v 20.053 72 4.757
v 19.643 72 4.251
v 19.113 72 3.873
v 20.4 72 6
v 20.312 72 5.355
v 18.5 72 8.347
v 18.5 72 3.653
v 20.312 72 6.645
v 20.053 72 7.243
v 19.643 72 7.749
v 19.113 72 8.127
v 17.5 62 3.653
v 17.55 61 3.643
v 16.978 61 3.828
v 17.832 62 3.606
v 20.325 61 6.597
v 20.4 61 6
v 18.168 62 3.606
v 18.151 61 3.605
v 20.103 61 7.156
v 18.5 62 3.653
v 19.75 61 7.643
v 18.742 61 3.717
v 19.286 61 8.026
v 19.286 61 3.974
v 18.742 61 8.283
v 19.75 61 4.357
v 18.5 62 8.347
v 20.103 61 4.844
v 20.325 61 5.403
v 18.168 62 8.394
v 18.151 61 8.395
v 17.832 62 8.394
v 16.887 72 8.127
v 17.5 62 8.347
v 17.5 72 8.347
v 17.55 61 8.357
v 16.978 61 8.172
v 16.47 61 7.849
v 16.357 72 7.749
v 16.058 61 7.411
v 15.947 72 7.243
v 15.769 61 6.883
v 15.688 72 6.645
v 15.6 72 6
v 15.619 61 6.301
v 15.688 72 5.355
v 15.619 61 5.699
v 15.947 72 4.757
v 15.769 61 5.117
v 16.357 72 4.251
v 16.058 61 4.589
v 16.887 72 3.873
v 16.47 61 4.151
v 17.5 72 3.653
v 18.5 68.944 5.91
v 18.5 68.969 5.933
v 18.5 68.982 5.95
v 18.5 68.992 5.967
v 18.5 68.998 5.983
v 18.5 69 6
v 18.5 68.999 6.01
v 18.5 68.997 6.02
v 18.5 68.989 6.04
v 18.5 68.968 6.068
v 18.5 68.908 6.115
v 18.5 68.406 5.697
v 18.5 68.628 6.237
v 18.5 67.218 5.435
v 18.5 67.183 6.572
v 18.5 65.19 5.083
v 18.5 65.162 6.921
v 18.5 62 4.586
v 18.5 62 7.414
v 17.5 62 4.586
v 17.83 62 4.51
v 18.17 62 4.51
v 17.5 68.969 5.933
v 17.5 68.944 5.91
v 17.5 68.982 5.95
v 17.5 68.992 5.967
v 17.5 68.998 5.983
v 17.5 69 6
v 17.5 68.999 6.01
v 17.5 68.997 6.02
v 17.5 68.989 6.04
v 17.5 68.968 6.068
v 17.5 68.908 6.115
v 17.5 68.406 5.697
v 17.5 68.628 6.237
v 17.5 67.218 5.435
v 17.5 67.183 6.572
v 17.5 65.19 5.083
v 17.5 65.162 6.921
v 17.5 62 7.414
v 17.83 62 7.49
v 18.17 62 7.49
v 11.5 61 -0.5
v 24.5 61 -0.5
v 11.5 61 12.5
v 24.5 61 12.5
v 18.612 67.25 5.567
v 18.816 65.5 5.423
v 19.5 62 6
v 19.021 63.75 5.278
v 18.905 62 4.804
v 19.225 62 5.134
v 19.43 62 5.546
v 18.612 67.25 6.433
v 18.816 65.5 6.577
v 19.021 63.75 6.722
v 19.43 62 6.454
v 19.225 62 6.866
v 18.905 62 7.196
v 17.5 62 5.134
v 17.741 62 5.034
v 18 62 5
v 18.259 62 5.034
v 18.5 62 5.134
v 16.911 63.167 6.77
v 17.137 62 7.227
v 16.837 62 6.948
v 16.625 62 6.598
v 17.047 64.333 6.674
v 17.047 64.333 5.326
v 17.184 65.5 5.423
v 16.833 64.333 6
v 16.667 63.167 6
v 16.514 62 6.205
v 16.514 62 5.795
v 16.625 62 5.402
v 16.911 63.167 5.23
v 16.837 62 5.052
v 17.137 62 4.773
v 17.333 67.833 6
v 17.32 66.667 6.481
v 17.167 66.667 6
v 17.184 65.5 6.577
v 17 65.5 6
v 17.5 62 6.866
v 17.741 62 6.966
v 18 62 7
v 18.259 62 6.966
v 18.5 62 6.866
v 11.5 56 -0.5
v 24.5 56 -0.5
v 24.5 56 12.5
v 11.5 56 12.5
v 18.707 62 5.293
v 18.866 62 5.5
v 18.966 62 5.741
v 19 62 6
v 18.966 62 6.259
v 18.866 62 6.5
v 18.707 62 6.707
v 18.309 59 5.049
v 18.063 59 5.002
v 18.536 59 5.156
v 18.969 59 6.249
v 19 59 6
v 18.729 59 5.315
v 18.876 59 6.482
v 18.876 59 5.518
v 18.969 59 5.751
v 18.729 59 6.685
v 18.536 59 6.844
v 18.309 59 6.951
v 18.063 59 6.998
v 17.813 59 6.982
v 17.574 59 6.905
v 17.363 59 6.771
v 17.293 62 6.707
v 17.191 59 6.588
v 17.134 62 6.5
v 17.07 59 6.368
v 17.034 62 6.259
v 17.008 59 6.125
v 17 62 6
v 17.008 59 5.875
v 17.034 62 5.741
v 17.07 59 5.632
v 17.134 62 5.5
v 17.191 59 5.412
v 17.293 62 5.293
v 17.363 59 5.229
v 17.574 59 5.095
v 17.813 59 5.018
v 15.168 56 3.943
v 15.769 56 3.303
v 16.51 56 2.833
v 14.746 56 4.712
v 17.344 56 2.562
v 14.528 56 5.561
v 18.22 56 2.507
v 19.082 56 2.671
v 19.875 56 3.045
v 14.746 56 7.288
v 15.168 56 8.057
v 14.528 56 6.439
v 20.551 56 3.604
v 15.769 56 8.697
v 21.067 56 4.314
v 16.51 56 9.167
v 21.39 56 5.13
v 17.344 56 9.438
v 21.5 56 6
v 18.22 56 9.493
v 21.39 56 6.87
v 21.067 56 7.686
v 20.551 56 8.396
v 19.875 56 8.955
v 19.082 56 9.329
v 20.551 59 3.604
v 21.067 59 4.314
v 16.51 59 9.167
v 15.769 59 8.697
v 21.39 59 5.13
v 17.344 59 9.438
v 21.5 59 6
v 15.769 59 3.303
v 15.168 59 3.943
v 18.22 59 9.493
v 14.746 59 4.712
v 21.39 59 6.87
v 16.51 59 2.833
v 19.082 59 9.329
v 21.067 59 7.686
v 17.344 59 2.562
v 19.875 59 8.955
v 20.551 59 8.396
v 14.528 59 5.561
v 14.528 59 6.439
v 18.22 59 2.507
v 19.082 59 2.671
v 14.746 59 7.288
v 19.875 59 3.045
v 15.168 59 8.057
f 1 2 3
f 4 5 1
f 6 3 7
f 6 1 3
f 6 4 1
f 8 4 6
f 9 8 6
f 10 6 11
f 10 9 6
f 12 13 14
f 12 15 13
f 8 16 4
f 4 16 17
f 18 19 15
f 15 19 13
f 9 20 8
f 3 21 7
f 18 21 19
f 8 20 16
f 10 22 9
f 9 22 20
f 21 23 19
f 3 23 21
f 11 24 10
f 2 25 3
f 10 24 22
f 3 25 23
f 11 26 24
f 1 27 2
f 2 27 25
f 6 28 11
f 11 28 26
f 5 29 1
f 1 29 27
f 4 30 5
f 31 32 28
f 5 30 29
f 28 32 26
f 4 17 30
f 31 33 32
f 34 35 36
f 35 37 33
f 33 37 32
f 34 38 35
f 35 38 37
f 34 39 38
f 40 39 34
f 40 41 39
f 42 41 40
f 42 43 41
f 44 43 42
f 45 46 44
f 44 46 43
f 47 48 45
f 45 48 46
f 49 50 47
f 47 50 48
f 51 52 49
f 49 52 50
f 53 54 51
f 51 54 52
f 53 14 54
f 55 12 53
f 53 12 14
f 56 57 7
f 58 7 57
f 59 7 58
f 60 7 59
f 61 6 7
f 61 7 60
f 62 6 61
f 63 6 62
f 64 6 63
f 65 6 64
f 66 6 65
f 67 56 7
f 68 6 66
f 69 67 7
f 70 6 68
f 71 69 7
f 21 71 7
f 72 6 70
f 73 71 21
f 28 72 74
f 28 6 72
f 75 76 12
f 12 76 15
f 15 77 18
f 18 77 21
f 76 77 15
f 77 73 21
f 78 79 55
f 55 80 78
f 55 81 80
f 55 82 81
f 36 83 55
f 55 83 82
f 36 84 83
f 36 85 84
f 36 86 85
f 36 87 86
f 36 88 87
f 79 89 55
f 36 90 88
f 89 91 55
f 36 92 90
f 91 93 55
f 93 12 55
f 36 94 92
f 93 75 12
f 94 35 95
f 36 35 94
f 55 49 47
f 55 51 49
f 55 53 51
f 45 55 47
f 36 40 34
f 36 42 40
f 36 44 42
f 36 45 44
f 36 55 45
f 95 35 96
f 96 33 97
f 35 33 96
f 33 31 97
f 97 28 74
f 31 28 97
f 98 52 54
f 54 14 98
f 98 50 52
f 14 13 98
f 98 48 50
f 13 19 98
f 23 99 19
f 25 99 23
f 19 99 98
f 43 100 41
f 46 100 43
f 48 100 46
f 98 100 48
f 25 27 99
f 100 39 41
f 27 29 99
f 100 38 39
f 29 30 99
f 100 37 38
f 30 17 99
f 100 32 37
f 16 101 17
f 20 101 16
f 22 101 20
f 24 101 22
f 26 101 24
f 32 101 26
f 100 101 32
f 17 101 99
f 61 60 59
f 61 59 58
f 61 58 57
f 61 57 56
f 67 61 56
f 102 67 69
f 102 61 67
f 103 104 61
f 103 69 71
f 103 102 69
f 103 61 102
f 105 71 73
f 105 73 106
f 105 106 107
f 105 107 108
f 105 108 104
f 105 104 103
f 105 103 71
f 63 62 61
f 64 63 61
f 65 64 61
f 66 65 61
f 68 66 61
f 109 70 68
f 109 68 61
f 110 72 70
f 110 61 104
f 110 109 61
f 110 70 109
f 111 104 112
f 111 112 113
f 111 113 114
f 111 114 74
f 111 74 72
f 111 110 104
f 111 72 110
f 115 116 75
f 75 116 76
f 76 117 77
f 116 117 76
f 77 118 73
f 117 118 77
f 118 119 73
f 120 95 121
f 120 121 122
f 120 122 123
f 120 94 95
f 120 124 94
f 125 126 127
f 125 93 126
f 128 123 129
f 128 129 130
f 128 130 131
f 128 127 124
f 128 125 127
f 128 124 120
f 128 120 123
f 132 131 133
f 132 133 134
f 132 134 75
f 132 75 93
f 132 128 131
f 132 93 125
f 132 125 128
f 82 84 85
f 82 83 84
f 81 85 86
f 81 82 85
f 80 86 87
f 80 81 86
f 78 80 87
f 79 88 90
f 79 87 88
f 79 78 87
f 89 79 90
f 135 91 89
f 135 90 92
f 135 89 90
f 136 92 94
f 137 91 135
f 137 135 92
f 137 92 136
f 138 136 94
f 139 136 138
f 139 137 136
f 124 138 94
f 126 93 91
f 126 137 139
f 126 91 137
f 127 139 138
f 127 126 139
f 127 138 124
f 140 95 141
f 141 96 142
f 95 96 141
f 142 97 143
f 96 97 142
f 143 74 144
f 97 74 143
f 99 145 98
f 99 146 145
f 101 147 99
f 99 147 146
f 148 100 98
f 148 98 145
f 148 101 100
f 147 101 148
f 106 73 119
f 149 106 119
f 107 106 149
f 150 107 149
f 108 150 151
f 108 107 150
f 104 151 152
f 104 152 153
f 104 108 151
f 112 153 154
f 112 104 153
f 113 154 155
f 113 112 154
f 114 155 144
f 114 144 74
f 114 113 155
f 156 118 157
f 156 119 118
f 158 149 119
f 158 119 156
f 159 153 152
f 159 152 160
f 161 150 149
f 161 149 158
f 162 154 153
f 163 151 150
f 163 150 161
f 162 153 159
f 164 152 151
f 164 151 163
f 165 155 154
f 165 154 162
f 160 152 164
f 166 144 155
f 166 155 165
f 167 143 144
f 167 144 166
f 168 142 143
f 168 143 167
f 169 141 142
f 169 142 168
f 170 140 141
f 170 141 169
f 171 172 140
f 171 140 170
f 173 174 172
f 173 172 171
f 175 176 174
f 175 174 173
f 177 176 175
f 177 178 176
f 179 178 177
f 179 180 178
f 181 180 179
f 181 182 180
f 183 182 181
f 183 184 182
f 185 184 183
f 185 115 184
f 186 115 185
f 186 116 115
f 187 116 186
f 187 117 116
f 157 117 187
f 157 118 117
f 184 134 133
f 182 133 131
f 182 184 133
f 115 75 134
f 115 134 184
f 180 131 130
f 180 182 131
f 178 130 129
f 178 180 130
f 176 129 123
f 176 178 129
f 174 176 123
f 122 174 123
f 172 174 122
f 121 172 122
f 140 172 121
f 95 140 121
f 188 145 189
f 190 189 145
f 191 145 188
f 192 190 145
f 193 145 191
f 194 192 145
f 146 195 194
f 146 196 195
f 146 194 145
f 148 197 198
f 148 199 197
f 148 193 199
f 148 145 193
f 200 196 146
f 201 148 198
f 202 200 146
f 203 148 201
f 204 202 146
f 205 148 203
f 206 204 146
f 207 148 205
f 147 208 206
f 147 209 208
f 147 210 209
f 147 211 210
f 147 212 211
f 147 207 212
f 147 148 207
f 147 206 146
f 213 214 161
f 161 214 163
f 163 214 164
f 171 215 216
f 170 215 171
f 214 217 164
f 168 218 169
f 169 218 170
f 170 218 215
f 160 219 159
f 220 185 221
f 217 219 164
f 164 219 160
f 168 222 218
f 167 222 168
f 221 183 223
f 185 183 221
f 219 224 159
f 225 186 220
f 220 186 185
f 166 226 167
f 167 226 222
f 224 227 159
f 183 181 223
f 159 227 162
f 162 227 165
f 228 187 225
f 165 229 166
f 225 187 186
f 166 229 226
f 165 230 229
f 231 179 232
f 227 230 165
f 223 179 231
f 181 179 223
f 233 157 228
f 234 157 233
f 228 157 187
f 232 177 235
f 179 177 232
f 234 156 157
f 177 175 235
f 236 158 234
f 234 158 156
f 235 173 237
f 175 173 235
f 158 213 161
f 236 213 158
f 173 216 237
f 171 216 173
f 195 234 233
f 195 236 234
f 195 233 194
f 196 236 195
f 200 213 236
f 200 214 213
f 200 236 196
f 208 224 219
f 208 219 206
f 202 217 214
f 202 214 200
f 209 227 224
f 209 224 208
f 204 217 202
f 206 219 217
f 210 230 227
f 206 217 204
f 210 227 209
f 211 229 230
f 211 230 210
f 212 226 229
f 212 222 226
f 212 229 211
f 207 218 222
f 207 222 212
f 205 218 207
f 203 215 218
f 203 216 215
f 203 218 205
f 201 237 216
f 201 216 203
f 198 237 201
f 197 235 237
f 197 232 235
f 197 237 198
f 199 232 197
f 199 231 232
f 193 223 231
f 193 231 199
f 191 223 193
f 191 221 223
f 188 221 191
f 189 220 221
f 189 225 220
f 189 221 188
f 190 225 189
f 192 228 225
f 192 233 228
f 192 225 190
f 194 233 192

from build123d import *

# Parameters (mm, degrees)
CONE_ROLL_ANGLE        = 90
CYLINDER_R             = 1
CYLINDER_DEPTH         = 3
CYLINDER_ROLL_ANGLE    = 90
CYLINDER005_R          = 3.5
CYLINDER005_DEPTH      = 3
CYLINDER005_ROLL_ANGLE = 90
BOX_W                  = 1
BOX_H                  = 10
BOX_DEPTH              = 10
BOX002_W               = 13
BOX002_H               = 5
BOX002_DEPTH           = 13
CYLINDER002_R          = 2.4
CYLINDER002_DEPTH      = 13
CYLINDER002_ROLL_ANGLE = 90


with BuildPart() as screw_guide:
    # Cone → Cone (revolve)
    with BuildSketch(Plane.XZ):
        Polygon((0, 0), (0.5, 0), (1.5, 7), (0, 7), align=None)
    revolve(axis=Axis((0, 0, 0), (0, 0, 1)))


with BuildPart() as screw_guide_1:
    # Cone roll: moved
    add(screw_guide.part.rotate(Axis((0, 0, 0), (1, 0, 0)), CONE_ROLL_ANGLE))


with BuildPart() as screw_guide_2:
    # Cone placement: moved
    add(screw_guide_1.part.moved(Location((18, 69, 6))))


with BuildPart() as hole:
    # Cylinder → Cylinder (new body)
    with BuildSketch(Plane.XY):
        Circle(CYLINDER_R)
    extrude(amount=CYLINDER_DEPTH)


with BuildPart() as hole_1:
    # Cylinder roll: moved
    add(hole.part.rotate(Axis((0, 0, 0), (1, 0, 0)), CYLINDER_ROLL_ANGLE))


with BuildPart() as hole_2:
    # Cylinder placement: moved
    add(hole_1.part.moved(Location((18, 62, 6))))


with BuildPart() as screw_head_seat:
    # Cylinder005 → Cylinder005 (new body)
    with BuildSketch(Plane.XY):
        Circle(CYLINDER005_R)
    extrude(amount=CYLINDER005_DEPTH)


with BuildPart() as screw_head_seat_1:
    # Cylinder005 roll: moved
    add(screw_head_seat.part.rotate(Axis((0, 0, 0), (1, 0, 0)), CYLINDER005_ROLL_ANGLE))


with BuildPart() as screw_head_seat_2:
    # Cylinder005 placement: moved
    add(screw_head_seat_1.part.moved(Location((18, 59, 6))))


with BuildPart() as hole_and_cut:
    # Box → Box (new body)
    with BuildSketch(Plane(origin=(17.5, 62, 1), x_dir=(1, 0, 0), z_dir=(0, 0, 1))):
        with Locations((0.5, 5)):
            Rectangle(BOX_W, BOX_H)
    extrude(amount=BOX_DEPTH)

    # Fusion: union screw guide, hole, screw head seat
    add(screw_guide_2.part)
    add(hole_2.part)
    add(screw_head_seat_2.part)


with BuildPart() as squared_washer:
    # Box002 → Box002 (new body)
    with BuildSketch(Plane(origin=(11.5, 56, -0.5), x_dir=(1, 0, 0), z_dir=(0, 0, 1))):
        with Locations((6.5, 2.5)):
            Rectangle(BOX002_W, BOX002_H)
    extrude(amount=BOX002_DEPTH)


with BuildPart() as anchor_with_hole_and_cut:
    # Cylinder002 → Cylinder002 (new body)
    with BuildSketch(Plane.XY):
        Circle(CYLINDER002_R)
    extrude(amount=CYLINDER002_DEPTH)


with BuildPart() as anchor_with_hole_and_cut_1:
    # Cylinder002 roll: moved
    add(anchor_with_hole_and_cut.part.rotate(Axis((0, 0, 0), (1, 0, 0)), CYLINDER002_ROLL_ANGLE))


with BuildPart() as anchor_with_hole_and_cut_2:
    # Cylinder002 placement: moved
    add(anchor_with_hole_and_cut_1.part.moved(Location((18, 72, 6))))

    # Fusion001: union squared washer
    add(squared_washer.part)

    # Cut: cut hole and cut
    add(hole_and_cut.part, mode=Mode.SUBTRACT)


solid = anchor_with_hole_and_cut_2.part
